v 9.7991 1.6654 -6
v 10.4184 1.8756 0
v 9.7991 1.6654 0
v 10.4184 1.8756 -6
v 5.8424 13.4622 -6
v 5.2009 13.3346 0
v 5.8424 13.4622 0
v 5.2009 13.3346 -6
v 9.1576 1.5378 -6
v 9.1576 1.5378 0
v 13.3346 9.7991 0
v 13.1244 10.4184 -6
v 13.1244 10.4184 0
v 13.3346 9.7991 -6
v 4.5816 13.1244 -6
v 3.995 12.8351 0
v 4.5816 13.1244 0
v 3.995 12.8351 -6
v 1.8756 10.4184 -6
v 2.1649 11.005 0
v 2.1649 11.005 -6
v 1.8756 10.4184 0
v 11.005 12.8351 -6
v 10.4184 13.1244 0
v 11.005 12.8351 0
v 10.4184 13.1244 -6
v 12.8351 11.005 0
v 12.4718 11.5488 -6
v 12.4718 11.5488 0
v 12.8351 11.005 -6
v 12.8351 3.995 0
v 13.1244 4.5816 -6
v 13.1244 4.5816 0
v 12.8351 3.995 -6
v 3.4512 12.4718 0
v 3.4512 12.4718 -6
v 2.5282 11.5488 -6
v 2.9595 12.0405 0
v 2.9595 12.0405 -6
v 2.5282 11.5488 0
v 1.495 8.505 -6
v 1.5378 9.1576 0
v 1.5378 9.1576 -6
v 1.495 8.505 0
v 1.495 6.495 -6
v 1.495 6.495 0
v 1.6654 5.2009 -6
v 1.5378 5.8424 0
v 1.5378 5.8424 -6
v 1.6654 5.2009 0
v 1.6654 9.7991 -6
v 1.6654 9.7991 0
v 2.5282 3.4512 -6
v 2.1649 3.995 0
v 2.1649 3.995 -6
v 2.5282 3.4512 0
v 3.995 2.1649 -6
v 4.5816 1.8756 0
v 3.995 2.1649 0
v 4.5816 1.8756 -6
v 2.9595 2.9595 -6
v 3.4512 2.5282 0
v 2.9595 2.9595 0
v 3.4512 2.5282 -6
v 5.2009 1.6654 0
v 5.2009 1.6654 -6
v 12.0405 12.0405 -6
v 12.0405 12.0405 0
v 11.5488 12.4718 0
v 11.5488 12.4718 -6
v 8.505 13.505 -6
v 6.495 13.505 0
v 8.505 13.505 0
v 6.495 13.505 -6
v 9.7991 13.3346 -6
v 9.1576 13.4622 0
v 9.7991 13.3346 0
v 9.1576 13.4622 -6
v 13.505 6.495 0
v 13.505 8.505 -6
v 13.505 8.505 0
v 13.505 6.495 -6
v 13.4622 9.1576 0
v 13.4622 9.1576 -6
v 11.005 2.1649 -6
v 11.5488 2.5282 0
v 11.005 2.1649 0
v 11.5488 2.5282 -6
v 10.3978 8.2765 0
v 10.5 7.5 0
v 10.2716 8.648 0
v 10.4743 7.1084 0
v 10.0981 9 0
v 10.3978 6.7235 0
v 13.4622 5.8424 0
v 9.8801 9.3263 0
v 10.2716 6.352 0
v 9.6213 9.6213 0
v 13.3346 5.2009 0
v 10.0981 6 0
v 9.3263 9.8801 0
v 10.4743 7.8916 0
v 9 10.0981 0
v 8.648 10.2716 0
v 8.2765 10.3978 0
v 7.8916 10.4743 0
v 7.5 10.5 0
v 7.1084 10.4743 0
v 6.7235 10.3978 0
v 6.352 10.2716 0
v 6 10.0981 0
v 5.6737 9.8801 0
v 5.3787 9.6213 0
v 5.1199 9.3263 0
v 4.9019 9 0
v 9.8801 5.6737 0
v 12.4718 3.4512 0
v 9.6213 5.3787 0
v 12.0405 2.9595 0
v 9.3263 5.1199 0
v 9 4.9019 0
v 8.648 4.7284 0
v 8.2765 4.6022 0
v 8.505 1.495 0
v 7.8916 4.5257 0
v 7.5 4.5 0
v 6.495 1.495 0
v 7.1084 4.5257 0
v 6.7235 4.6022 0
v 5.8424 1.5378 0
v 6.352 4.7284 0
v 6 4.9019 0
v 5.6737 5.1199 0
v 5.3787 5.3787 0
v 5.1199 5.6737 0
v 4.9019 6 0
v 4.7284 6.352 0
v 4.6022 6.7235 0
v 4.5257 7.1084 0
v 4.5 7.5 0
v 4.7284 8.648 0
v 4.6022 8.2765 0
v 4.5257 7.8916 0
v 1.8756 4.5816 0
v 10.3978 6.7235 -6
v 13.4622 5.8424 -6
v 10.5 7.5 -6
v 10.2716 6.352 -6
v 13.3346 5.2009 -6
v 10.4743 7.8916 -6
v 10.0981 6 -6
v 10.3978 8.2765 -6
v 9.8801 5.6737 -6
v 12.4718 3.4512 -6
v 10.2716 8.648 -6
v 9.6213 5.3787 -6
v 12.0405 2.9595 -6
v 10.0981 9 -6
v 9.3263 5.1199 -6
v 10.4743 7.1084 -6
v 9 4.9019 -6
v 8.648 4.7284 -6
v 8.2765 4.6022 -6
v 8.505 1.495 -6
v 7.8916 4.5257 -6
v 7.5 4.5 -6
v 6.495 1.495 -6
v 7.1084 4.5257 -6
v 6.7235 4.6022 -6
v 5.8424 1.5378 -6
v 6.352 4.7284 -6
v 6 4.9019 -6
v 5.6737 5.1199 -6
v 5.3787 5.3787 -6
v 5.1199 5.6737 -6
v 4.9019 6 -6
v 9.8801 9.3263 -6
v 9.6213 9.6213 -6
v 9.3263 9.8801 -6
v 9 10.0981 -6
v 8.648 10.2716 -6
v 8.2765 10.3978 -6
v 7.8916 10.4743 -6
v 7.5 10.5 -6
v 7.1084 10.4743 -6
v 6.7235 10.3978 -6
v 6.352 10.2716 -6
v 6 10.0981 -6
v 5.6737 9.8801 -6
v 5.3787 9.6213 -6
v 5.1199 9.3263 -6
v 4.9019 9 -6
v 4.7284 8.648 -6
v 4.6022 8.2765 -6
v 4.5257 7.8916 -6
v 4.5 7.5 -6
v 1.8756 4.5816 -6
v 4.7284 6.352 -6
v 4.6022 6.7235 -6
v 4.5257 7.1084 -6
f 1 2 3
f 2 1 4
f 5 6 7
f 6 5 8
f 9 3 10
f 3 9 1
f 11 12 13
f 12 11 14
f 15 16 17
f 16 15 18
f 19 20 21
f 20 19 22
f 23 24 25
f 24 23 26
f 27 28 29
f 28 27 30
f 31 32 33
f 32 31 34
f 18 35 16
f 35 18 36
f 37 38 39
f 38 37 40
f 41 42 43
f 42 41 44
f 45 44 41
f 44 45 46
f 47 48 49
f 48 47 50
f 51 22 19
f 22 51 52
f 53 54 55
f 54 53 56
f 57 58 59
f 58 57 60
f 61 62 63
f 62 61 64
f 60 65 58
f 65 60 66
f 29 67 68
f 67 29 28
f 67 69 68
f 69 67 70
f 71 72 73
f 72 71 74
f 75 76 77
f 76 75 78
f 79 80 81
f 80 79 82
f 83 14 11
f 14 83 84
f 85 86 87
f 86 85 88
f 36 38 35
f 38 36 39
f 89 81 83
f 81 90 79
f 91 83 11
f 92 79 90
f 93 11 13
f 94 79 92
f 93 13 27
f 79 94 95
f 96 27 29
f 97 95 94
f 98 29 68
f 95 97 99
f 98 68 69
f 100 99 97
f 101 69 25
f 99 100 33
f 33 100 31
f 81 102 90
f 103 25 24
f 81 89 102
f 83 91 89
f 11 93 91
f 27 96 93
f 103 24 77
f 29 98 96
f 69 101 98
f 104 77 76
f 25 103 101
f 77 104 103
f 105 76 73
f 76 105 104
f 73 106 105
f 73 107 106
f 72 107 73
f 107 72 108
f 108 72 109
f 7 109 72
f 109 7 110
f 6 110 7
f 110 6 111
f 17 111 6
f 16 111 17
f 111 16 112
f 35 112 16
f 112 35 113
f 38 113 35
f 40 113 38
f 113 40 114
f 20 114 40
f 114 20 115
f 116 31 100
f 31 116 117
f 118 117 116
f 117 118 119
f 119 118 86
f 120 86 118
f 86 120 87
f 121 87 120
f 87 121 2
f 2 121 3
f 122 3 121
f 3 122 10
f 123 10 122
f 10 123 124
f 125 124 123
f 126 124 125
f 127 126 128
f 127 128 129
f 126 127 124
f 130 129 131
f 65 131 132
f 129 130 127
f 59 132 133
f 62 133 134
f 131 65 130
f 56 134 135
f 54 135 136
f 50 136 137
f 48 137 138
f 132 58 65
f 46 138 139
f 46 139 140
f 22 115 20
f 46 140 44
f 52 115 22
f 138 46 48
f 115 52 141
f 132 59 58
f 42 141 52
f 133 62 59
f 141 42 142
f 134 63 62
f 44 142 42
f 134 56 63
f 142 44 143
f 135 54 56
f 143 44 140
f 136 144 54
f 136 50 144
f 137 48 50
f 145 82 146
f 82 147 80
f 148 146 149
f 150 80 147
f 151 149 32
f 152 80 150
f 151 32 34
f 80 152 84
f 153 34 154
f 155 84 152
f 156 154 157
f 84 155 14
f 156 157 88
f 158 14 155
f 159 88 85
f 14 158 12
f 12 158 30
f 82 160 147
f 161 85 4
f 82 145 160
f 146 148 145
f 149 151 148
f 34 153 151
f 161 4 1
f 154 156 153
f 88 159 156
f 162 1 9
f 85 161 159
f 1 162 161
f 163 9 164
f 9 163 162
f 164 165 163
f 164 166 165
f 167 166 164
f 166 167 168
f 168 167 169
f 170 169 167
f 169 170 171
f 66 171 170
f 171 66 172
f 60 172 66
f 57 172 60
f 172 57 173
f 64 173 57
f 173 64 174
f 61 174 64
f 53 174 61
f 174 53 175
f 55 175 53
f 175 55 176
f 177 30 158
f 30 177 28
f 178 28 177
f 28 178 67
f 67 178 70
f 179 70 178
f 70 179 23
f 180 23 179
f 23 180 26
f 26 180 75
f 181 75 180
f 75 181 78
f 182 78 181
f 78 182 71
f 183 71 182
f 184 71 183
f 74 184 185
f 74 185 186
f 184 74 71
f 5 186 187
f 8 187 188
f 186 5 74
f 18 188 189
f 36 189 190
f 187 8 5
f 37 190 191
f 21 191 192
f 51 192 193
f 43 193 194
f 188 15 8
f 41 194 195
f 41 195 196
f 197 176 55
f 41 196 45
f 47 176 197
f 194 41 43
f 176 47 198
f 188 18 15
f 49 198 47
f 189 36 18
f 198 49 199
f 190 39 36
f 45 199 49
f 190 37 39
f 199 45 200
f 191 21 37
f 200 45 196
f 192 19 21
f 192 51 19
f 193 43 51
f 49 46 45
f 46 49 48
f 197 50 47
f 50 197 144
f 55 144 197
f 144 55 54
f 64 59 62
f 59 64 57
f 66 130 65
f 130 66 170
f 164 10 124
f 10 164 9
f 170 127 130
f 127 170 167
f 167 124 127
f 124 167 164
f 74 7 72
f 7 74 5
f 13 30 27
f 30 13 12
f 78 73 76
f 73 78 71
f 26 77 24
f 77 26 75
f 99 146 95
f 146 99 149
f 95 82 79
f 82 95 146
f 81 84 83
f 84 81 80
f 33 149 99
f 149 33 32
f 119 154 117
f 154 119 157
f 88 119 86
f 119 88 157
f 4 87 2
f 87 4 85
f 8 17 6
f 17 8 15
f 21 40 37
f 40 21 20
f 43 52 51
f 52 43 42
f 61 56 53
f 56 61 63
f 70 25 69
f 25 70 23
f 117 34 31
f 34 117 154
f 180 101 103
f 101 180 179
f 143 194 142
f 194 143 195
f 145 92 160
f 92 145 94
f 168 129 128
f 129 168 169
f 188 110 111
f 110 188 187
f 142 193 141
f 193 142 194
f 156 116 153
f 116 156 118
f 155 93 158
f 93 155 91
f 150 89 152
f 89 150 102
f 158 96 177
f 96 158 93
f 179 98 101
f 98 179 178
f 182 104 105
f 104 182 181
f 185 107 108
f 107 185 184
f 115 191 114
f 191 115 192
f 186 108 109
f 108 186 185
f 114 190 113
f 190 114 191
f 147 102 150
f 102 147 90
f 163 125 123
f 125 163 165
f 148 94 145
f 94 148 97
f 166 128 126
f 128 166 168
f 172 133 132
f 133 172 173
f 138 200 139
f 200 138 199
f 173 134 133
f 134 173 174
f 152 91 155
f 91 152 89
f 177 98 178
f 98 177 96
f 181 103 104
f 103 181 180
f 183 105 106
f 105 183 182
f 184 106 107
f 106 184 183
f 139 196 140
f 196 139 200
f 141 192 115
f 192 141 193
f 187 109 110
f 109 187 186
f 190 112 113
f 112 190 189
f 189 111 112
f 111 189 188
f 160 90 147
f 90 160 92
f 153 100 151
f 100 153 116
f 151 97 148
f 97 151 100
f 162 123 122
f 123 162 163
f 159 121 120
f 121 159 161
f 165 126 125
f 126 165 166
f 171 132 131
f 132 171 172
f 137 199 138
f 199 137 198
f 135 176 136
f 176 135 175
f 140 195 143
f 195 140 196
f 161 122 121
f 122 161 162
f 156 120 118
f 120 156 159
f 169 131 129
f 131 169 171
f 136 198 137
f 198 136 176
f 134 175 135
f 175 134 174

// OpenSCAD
// Generated by SolidPython 1.1.3 on 2022-09-14 11:03:10
$fn = 48;


difference() {
	union() {
		color(alpha = 1.0000000000, c = "Gold") {
			translate(v = [7.5000000000, 7.5000000000, 0]) {
				rotate(a = [0, 0, 0]) {
					translate(v = [0, 0, -6]) {
						linear_extrude(height = 6) {
							offset(r = 5) {
								square(center = true, size = [2.0100000000, 2.0100000000]);
							}
						}
					}
				}
			}
		}
	}
	union() {
		color(alpha = 1.0000000000, c = "Gold") {
			translate(v = [7.5000000000, 7.5000000000, 0]) {
				rotate(a = [0, 0, 0]) {
					translate(v = [0, 0, -250]) {
						cylinder(h = 500, r = 3.0000000000);
					}
				}
			}
		}
	}
}
/***********************************************
*********      SolidPython code:      **********
************************************************
 
import subprocess

from solid.objects import *
from solid import scad_render_to_file, scad_render

import os

##################################################################################################################################################
##################################################################################################################################################
##################################################################################################################################################
##################################################################################################################################################
######  DIMENSION STUFF
##################################################################################################################################################
##################################################################################################################################################
##################################################################################################################################################
##################################################################################################################################################


mode = "3DPR"
#mode = "LAZE"
#mode = "TURE"
#mode = ""


######  Countersunk
countersunkM = []
WIDTH = 0
DEPTH = 1
countersunkM1width = 0; countersunkM1depth = 0; countersunkM2width = 0; countersunkM2depth = 0
countersunkM3width = 0
countersunkM3depth = 0
countersunkM4width = 0
countersunkM4depth = 0
countersunkM5width = 0
countersunkM5depth = 0
countersunkM6width = 0
countersunkM6depth = 0

######  Holes
holeM = []
holeM1 = 0
holeM2 = 0
holeM3 = 0
holeM4 = 0
holeM5 = 0
holeM6 = 0

######  Nuts
nutM = []
NUTWIDTH = 0
NUTDEPTH = 1
nutM1width = 0
nutM1depth = 0
nutM2width = 0
nutM2depth = 0
nutM3width = 0
nutM3depth = 0
nutM4width = 0
nutM4depth = 0
nutM5width = 0
nutM5depth = 0
nutM6width = 0
nutM6depth = 0

######  OOEB
ooebPinWidth = 0
ooebPinWidthWide = 0


######  Colors
colDefault = "Gold"

colOOEBbase = colDefault

colLEDRed = "red"
colWire = "gray"
    ######  Resistor
colRes = list()
colResistor = "beige"

colResBlack = "black"
colRes.append(colResBlack)
colResBrown = "brown"
colRes.append(colResBrown)
colResRed = "red"
colRes.append(colResRed)
colResOrange = "orange"
colRes.append(colResOrange)
colResYellow = "yellow"
colRes.append(colResYellow)
colResGreen = "green"
colRes.append(colResGreen)
colResBlue = "blue"
colRes.append(colResBlue)
colResPurple = "purple"
colRes.append(colResPurple)
colResGray = "gray"
colRes.append(colResGray)
colResWhite = "white"
colRes.append(colResWhite)





def changeMode(m="3DPR"):
    #print("####################################################      CHANGING MODES TO: " + m)
    global mode
    mode = m
    ######  Countersunk
    global countersunkM, countersunkM1width, countersunkM1depth, countersunkM2width, countersunkM2depth, countersunkM3width, countersunkM3depth, countersunkM4width, countersunkM4depth, countersunkM5width, countersunkM5depth, countersunkM6width, countersunkM6depth
    countersunkM = []
    countersunkM.append([0,0])
    countersunkM1width = 0 if mode== "3DPR" else 0
    countersunkM1depth = 0 if mode== "3DPR" else 0
    countersunkM.append([countersunkM1width,countersunkM1depth])
    countersunkM2width = 0 if mode== "3DPR" else 0
    countersunkM2depth = 0 if mode== "3DPR" else 0
    countersunkM.append([countersunkM2width,countersunkM2depth])
    countersunkM3width = 5.5/2+0.6 if mode== "3DPR" else 5.5/2
    countersunkM3depth = 1.7 if mode== "3DPR" else 1.7
    countersunkM.append([countersunkM3width,countersunkM3depth])
    countersunkM4width = 0 if mode== "3DPR" else 0
    countersunkM4depth = 0 if mode== "3DPR" else 0
    countersunkM.append([countersunkM4width,countersunkM4depth])
    countersunkM5width = 0 if mode== "3DPR" else 0
    countersunkM5depth = 0 if mode== "3DPR" else 0
    countersunkM.append([countersunkM5width,countersunkM5depth])
    countersunkM6width = 0 if mode== "3DPR" else 0
    countersunkM6depth = 0 if mode== "3DPR" else 0
    countersunkM.append([countersunkM6width,countersunkM6depth])
    ######  Holes
    global holeM, holeM1, holeM2, holeM3, holeM4, holeM5, holeM6, holeM7, holeM8
    holeM = []
    holeM1 = 1.2/2 if mode== "3DPR" else 1/2
    holeM2 = 2.3/2 if mode== "3DPR" else 2/2
    holeM3 = 3.4/2 if mode== "3DPR" else 3/2
    holeM4 = 4.4/2 if mode== "3DPR" else 4/2
    holeM5 = 5.4/2 if mode== "3DPR" else 5/2
    holeM6 = 6.5/2 if mode== "3DPR" else 6/2
    holeM7 = 7.5/2 if mode== "3DPR" else 7/2
    holeM8 = 8.6/2 if mode== "3DPR" else 8/2
    holeM.append(0)
    holeM.append(holeM1)
    holeM.append(holeM2)
    holeM.append(holeM3)
    holeM.append(holeM4)
    holeM.append(holeM5)
    holeM.append(holeM6)
    holeM.append(holeM7)
    holeM.append(holeM8)
    #####  Nuts
    global nutM, nutM1width, nutM1depth, nutM2width, nutM2depth, nutM3width, nutM3depth, nutM4width, nutM4depth, nutM5width, nutM5depth, nutM6width, nutM6depth
    nutM = []
    nutM.append([0,0]) 
    #M1 Nut
    nutM1width = 0
    nutM1depth = 0
    nutM.append([nutM1width,nutM1depth])    
    #M2 Nut
    nutM2width = 0
    nutM2depth = 0
    nutM.append([nutM2width,nutM2depth])    
    #M3 Nut
    nutM3width = 6.05 if mode== "3DPR" else 5.5
    nutM3depth = 2.5 if mode== "3DPR" else 2.5
    nutM.append([nutM3width,nutM3depth])    
    #M4 Nut
    nutM4width = 0
    nutM4depth = 0
    nutM.append([nutM4width,nutM4depth])    
    #M5 Nut
    nutM5width = 0
    nutM5depth = 0
    nutM.append([nutM5width,nutM5depth])    
    #M6 Nut
    nutM6width = 11 if mode== "3DPR" else 10
    nutM6depth = 5 if mode== "3DPR" else 5
    nutM.append([nutM6width,nutM6depth])    

    ######  OOEB
    global ooebPinWidth,  ooebPinWidthWide

    ooebPinWidth = 0.6
    if(mode=="3DPR" or mode=="LAZE"):
        ooebPinWidth = 0.6 + 0.6
    ooebPinWidthWide = 1.2
    if(mode=="3DPR" or mode=="LAZE"):
        ooebPinWidthWide = 1.2 + 0.6


changeMode()


""""    
holeM12D = s=="3DPR" ? 1.4/2 : 1.2/2;
holeM16D = s=="3DPR" ? 1.8/2 : 1.6/2;
holeM2 = s=="3DPR" ? 2.3/2 : 2/2;
holeM25D = s=="3DPR" ? 2.8/2 : 2.5/2;
holeM27D = s=="3DPR" ? 3.1/2 : 2.7/2;    
holeM3 = s=="3DPR" ? 3.4/2 : 3/2;
holeM35D = s=="3DPR" ? 3.9/2 : 35/2;
holeM4 = s=="3DPR" ? 4.4/2 : 4/2;
holeM5 = s=="3DPR" ? 5.4/2 : 5/2;
holeM6 = s=="3DPR" ? 6.5/2 : 6/2;
holeM6Minus = s=="3DPR" ? 5.8/2 : 5.9/2;
holeM7 = s=="3DPR" ? 7.5/2 : 7/2;
holeM8 = s=="3DPR" ? 8.6/2 : 8/2;
holeM9 = s=="3DPR" ? 9.6/2 : 9/2;
holeM10 = s=="3DPR" ? 10.6/2 : 10/2;
holeM11 = s=="3DPR" ? 11.6/2 : 11/2;
holeM12 = s=="3DPR" ? 12.6/2 : 12/2;
holeM13 = s=="3DPR" ? 13.6/2 : 13/2;
holeM14 = s=="3DPR" ? 14.6/2 : 14/2;
holeM15 = s=="3DPR" ? 15.6/2 : 15/2;
holeM16 = s=="3DPR" ? 16.6/2 : 16/2;
holeM17 = s=="3DPR" ? 17.6/2 : 17/2;
holeM18 = s=="3DPR" ? 18.6/2 : 18/2;
holeM19 = s=="3DPR" ? 19.6/2 : 19/2;
holeM20 = s=="3DPR" ? 20.6/2 : 20/2;
"""

##################################################################################################################################################
##################################################################################################################################################
##################################################################################################################################################
##################################################################################################################################################
######  REGULAR STUFF
##################################################################################################################################################
##################################################################################################################################################
##################################################################################################################################################
##################################################################################################################################################


def setMode(mode="3DPR"):
    changeMode(mode)

def getMode():
    return mode



def saveToScad(fileName, parts):
    dir =  os.path.dirname(os.path.abspath(fileName))
    Path(dir).mkdir(parents=True, exist_ok=True)
    file_out = scad_render_to_file(parts, fileName, file_header=f'$fn = 48;')


def saveToDxf(fileIn, fileOut=""):
    if fileOut == "":
        fileOut = fileIn.replace(".scad",".dxf")
    saveToFile(fileIn, fileOut)
    
def saveToPng(fileIn, fileOut="",extra="--render"):
    if fileOut == "":
        fileOut = fileIn.replace(".scad",".png")
    saveToFile(fileIn, fileOut)

def saveToStl(fileIn, fileOut=""):
    if fileOut == "":
        fileOut = fileIn.replace(".scad",".stl")
    saveToFile(fileIn, fileOut)
    
def saveToSvg(fileIn, fileOut=""):
    if fileOut == "":
        fileOut = fileIn.replace(".scad",".svg")
    saveToFile(fileIn, fileOut)

def saveToFile(fileIn, fileOut,extra=""):
    extra = extra + " --colorscheme Tomorrow"

    launchStr = 'openscad -o "' + fileOut + '"' + extra + ' "' + fileIn + '"'
    print("            saveToFile launch string: " + launchStr)
    subprocess.run(launchStr)
    x=0



def insert(item,pos=[None,None,None],x=0,y=0,z=0,ex=0,size=[None,None,None],length=0,rot=[None,None,None],rotX=0,rotY=0,rotZ=0,width=0,height=0,depth=100,rad=0,rad2=0,color=colDefault,alpha=1,OOwidth=0,OOheight=0,holes=True,negative=True, name=""):
    return OPSCInsert(item,pos,x,y,z,ex,size,length,rot,rotX,rotY,rotZ,width,height,depth,rad,rad2,color,alpha,OOwidth,OOheight,holes,negative,name)


def OPSCInsert(item,pos=[None,None,None],x=0,y=0,z=0,ex=0,size=[None,None,None],length=0,rot=[None,None,None],rotX=0,rotY=0,rotZ=0,width=0,height=0,depth=100,rad=0,rad2=0,col=colDefault,alpha=1,OOwidth=0,OOheight=0,holes=True,negative=True, name=""):
    
    """
        color(color,alpha){
            translate([x,y,z]){
                    rotate([rotX,rotY,rotZ]){
    """
    returnValue = ""

    #print(pos)

    if pos[0] != None:
        x=pos[0]
        y=pos[1]
        z=pos[2]
    if rot[0] != None:
        rotX=rot[0]
        rotY=rot[1]
        rotZ=rot[2]
    
    returnValue = color(col)(translate((x,y,z))(
                            rotate((rotX,rotY,rotZ))(
                                OPSCInsertIf(item,pos,x,y,z,ex,size,length,rot,rotX,rotY,rotZ,width,height,depth,rad,rad2,col,alpha,OOwidth,OOheight,holes,negative,name)
                            )
                        ))
                
    

    return returnValue

def OPSCInsertIf(item,pos=[None,None,None],x=0,y=0,z=0,ex=0,size=[None,None,None],length=0,rot=[None,None,None],rotX=0,rotY=0,rotZ=0,width=0,height=0,depth=100,rad=0,rad2=0,color=colDefault,alpha=1,OOwidth=0,OOheight=0,holes=True,negative=True, name=""):
    returnValue = cube([10,10,10])

    if size[0] != None:
        width=size[0]
        height=size[1]
        depth=size[2]

    #print("    OPSCInsert item:" + str(item) + " at:[" + str(x) + "," + str(y) + "," + str(z) + "] size: [" + str(width) + "," + str(height) + "," + str(depth) + "]")

    if(item=="cube"):
        returnValue =  translate([0,0,-depth/2])(cube([width,height,depth],center=True))
    elif(item=="cylinder"):        
        returnValue = translate([0,0,-depth/2])(cylinder(r=rad,h=depth,center=True))
    elif(item=="sphere"):        
        returnValue = translate([0,0,-rad])(sphere(r=rad))
    elif(item=="plane"):
        if depth == 100:
            returnValue = insert("cube",size=[1000,1000,0.1],color=color)            
        else:
            returnValue = insert("cube",size=[1000,1000,depth],color=color)                        
    elif(item=="cubeRounded"):
        if(rad == 0):
                            rad = 5
        returnValue =  translate([0,0,-depth])(
                        linear_extrude(height=depth)(                        
                            offset(r=rad)(
                                square((width-rad*2+.01,height-rad*2+.01),center=True)
                                )
                            )
        )
    ######  Countersunk
    elif(item == "countersunkM1" or item == "csM1" ):
        returnValue = OSPCgetCountersunk(rad=1)
    elif(item == "countersunkM2" or item == "csM2" ):
        returnValue = OSPCgetCountersunk(rad=2)
    elif(item == "countersunkM3" or item == "csM3" ):
        returnValue = OSPCgetCountersunk(rad=3)
    elif(item == "countersunkM4" or item == "csM4" ):
        returnValue = OSPCgetCountersunk(rad=4)
    elif(item == "countersunkM5" or item == "csM5" ):
        returnValue = OSPCgetCountersunk(rad=5)
    elif(item == "countersunkM6" or item == "csM6" ):
        returnValue = OSPCgetCountersunk(rad=6)
    elif(item == "countersunk" or item == "cs"):
        returnValue = OSPCgetCountersunk(rad=rad)


    ######  Holes    
    elif(item == "holeM1"):
        returnValue = OSPCgetHole(rad=1)
    elif(item == "holeM2"):
        returnValue = OSPCgetHole(rad=2)
    elif(item == "holeM3"):
        returnValue = OSPCgetHole(rad=3)
    elif(item == "holeM4"):
        returnValue = OSPCgetHole(rad=4)
    elif(item == "holeM5"):
        returnValue = OSPCgetHole(rad=5)
    elif(item == "holeM6"):
        returnValue = OSPCgetHole(rad=6)
    elif(item == "hole"):
        returnValue = OSPCgetHole(rad=rad)

    ######  Nuts
    elif(item == "nutM1"):
        returnValue = OSPCgetNut(rad=1,depth=depth)
    elif(item == "nutM2"):
        returnValue = OSPCgetNut(rad=2,depth=depth)
    elif(item == "nutM3"):
        returnValue = OSPCgetNut(rad=3,depth=depth)
    elif(item == "nutM4"):
        returnValue = OSPCgetNut(rad=4,depth=depth)
    elif(item == "nutM5"):
        returnValue = OSPCgetNut(rad=5,depth=depth)
    elif(item == "nutM6"):
        returnValue = OSPCgetNut(rad=6,depth=depth)
    elif(item == "nut"):
        returnValue = OSPCgetNut(rad=rad,depth=depth)
    return returnValue

                

def OSPCgetHole(rad):
    return translate([0,0,-250])(cylinder(r=holeM[rad],h=500))

def OSPCgetNut(rad,depth):
    depth = nutM[rad][NUTDEPTH] if depth==100 else depth
    returnValue = OPSChexagon(nutM[rad][NUTWIDTH],depth=depth)
    return returnValue

def OSPCgetCountersunk(rad):
    depth=countersunkM[rad][DEPTH]
    returnValue = translate([0,0,-depth])(cylinder(h=depth,r2=countersunkM[rad][WIDTH],r1=holeM[rad]))
    return returnValue

def OPSChexagon(width,depth):
    cutter = item()
    wid=width*2
    cutter.addPos(insert("cube",pos=[wid/2+width/2,0,0],size=[wid,wid,depth]))
    cutter.addPos(insert("cube",pos=[-wid/2-width/2,0,0],size=[wid,wid,depth]))

    cut = cutter.getPart()
    #print(depth)
    returnValue = difference()(
        translate([0,0,-depth/2])(cube([wid,wid,depth],center=True)),
        cut,
        rotate([0,0,60])(cut),
        rotate([0,0,-60])(cut)
    )

    return returnValue




class item:

    def __init__(self):
        self.posItems=list()
        self.negItems=list()

    def isEmpty(self):        
        testString = scad_render(self.getPart())
        #print("test String length: " + str(len(testString)))
        returnValue = False
        if len(testString) == 270:            
            returnValue = True
        return returnValue

    def addPos(self,part):
        self.posItems.append(part)
    def addNeg(self,part):
        self.negItems.append(part)

    def getPart(self):
        returnValue = difference()(
            union()(self.posItems),
            union()(self.negItems)
        )
        return returnValue

    def getLaser(self,start=0,layers=1,thickness=-3,tileDif=200):
        rv= []

        for x in range(layers):
            rv.append(translate([0,x*tileDif,0])(
                    projection()(
                        intersection()(
                            insert("plane",z=start+x*thickness),
                            self.getPart()
                        )
                    )
            )
            )
        return union()(rv)

    def getSplit(self,start=0,depth=6,tileDif=200):
        rv= []

        rv.append(translate([0,0,0])(
            intersection()(
                insert("cube",size=[100,100,depth],z=start),
                self.getPart()
            )
        )
        )

        rv.append(translate([0,tileDif,depth])(
            intersection()(
                insert("cube",size=[100,100,depth],z=start-depth),
                self.getPart()
            )
        )
        )        
        return union()(rv)


 
 
************************************************/
